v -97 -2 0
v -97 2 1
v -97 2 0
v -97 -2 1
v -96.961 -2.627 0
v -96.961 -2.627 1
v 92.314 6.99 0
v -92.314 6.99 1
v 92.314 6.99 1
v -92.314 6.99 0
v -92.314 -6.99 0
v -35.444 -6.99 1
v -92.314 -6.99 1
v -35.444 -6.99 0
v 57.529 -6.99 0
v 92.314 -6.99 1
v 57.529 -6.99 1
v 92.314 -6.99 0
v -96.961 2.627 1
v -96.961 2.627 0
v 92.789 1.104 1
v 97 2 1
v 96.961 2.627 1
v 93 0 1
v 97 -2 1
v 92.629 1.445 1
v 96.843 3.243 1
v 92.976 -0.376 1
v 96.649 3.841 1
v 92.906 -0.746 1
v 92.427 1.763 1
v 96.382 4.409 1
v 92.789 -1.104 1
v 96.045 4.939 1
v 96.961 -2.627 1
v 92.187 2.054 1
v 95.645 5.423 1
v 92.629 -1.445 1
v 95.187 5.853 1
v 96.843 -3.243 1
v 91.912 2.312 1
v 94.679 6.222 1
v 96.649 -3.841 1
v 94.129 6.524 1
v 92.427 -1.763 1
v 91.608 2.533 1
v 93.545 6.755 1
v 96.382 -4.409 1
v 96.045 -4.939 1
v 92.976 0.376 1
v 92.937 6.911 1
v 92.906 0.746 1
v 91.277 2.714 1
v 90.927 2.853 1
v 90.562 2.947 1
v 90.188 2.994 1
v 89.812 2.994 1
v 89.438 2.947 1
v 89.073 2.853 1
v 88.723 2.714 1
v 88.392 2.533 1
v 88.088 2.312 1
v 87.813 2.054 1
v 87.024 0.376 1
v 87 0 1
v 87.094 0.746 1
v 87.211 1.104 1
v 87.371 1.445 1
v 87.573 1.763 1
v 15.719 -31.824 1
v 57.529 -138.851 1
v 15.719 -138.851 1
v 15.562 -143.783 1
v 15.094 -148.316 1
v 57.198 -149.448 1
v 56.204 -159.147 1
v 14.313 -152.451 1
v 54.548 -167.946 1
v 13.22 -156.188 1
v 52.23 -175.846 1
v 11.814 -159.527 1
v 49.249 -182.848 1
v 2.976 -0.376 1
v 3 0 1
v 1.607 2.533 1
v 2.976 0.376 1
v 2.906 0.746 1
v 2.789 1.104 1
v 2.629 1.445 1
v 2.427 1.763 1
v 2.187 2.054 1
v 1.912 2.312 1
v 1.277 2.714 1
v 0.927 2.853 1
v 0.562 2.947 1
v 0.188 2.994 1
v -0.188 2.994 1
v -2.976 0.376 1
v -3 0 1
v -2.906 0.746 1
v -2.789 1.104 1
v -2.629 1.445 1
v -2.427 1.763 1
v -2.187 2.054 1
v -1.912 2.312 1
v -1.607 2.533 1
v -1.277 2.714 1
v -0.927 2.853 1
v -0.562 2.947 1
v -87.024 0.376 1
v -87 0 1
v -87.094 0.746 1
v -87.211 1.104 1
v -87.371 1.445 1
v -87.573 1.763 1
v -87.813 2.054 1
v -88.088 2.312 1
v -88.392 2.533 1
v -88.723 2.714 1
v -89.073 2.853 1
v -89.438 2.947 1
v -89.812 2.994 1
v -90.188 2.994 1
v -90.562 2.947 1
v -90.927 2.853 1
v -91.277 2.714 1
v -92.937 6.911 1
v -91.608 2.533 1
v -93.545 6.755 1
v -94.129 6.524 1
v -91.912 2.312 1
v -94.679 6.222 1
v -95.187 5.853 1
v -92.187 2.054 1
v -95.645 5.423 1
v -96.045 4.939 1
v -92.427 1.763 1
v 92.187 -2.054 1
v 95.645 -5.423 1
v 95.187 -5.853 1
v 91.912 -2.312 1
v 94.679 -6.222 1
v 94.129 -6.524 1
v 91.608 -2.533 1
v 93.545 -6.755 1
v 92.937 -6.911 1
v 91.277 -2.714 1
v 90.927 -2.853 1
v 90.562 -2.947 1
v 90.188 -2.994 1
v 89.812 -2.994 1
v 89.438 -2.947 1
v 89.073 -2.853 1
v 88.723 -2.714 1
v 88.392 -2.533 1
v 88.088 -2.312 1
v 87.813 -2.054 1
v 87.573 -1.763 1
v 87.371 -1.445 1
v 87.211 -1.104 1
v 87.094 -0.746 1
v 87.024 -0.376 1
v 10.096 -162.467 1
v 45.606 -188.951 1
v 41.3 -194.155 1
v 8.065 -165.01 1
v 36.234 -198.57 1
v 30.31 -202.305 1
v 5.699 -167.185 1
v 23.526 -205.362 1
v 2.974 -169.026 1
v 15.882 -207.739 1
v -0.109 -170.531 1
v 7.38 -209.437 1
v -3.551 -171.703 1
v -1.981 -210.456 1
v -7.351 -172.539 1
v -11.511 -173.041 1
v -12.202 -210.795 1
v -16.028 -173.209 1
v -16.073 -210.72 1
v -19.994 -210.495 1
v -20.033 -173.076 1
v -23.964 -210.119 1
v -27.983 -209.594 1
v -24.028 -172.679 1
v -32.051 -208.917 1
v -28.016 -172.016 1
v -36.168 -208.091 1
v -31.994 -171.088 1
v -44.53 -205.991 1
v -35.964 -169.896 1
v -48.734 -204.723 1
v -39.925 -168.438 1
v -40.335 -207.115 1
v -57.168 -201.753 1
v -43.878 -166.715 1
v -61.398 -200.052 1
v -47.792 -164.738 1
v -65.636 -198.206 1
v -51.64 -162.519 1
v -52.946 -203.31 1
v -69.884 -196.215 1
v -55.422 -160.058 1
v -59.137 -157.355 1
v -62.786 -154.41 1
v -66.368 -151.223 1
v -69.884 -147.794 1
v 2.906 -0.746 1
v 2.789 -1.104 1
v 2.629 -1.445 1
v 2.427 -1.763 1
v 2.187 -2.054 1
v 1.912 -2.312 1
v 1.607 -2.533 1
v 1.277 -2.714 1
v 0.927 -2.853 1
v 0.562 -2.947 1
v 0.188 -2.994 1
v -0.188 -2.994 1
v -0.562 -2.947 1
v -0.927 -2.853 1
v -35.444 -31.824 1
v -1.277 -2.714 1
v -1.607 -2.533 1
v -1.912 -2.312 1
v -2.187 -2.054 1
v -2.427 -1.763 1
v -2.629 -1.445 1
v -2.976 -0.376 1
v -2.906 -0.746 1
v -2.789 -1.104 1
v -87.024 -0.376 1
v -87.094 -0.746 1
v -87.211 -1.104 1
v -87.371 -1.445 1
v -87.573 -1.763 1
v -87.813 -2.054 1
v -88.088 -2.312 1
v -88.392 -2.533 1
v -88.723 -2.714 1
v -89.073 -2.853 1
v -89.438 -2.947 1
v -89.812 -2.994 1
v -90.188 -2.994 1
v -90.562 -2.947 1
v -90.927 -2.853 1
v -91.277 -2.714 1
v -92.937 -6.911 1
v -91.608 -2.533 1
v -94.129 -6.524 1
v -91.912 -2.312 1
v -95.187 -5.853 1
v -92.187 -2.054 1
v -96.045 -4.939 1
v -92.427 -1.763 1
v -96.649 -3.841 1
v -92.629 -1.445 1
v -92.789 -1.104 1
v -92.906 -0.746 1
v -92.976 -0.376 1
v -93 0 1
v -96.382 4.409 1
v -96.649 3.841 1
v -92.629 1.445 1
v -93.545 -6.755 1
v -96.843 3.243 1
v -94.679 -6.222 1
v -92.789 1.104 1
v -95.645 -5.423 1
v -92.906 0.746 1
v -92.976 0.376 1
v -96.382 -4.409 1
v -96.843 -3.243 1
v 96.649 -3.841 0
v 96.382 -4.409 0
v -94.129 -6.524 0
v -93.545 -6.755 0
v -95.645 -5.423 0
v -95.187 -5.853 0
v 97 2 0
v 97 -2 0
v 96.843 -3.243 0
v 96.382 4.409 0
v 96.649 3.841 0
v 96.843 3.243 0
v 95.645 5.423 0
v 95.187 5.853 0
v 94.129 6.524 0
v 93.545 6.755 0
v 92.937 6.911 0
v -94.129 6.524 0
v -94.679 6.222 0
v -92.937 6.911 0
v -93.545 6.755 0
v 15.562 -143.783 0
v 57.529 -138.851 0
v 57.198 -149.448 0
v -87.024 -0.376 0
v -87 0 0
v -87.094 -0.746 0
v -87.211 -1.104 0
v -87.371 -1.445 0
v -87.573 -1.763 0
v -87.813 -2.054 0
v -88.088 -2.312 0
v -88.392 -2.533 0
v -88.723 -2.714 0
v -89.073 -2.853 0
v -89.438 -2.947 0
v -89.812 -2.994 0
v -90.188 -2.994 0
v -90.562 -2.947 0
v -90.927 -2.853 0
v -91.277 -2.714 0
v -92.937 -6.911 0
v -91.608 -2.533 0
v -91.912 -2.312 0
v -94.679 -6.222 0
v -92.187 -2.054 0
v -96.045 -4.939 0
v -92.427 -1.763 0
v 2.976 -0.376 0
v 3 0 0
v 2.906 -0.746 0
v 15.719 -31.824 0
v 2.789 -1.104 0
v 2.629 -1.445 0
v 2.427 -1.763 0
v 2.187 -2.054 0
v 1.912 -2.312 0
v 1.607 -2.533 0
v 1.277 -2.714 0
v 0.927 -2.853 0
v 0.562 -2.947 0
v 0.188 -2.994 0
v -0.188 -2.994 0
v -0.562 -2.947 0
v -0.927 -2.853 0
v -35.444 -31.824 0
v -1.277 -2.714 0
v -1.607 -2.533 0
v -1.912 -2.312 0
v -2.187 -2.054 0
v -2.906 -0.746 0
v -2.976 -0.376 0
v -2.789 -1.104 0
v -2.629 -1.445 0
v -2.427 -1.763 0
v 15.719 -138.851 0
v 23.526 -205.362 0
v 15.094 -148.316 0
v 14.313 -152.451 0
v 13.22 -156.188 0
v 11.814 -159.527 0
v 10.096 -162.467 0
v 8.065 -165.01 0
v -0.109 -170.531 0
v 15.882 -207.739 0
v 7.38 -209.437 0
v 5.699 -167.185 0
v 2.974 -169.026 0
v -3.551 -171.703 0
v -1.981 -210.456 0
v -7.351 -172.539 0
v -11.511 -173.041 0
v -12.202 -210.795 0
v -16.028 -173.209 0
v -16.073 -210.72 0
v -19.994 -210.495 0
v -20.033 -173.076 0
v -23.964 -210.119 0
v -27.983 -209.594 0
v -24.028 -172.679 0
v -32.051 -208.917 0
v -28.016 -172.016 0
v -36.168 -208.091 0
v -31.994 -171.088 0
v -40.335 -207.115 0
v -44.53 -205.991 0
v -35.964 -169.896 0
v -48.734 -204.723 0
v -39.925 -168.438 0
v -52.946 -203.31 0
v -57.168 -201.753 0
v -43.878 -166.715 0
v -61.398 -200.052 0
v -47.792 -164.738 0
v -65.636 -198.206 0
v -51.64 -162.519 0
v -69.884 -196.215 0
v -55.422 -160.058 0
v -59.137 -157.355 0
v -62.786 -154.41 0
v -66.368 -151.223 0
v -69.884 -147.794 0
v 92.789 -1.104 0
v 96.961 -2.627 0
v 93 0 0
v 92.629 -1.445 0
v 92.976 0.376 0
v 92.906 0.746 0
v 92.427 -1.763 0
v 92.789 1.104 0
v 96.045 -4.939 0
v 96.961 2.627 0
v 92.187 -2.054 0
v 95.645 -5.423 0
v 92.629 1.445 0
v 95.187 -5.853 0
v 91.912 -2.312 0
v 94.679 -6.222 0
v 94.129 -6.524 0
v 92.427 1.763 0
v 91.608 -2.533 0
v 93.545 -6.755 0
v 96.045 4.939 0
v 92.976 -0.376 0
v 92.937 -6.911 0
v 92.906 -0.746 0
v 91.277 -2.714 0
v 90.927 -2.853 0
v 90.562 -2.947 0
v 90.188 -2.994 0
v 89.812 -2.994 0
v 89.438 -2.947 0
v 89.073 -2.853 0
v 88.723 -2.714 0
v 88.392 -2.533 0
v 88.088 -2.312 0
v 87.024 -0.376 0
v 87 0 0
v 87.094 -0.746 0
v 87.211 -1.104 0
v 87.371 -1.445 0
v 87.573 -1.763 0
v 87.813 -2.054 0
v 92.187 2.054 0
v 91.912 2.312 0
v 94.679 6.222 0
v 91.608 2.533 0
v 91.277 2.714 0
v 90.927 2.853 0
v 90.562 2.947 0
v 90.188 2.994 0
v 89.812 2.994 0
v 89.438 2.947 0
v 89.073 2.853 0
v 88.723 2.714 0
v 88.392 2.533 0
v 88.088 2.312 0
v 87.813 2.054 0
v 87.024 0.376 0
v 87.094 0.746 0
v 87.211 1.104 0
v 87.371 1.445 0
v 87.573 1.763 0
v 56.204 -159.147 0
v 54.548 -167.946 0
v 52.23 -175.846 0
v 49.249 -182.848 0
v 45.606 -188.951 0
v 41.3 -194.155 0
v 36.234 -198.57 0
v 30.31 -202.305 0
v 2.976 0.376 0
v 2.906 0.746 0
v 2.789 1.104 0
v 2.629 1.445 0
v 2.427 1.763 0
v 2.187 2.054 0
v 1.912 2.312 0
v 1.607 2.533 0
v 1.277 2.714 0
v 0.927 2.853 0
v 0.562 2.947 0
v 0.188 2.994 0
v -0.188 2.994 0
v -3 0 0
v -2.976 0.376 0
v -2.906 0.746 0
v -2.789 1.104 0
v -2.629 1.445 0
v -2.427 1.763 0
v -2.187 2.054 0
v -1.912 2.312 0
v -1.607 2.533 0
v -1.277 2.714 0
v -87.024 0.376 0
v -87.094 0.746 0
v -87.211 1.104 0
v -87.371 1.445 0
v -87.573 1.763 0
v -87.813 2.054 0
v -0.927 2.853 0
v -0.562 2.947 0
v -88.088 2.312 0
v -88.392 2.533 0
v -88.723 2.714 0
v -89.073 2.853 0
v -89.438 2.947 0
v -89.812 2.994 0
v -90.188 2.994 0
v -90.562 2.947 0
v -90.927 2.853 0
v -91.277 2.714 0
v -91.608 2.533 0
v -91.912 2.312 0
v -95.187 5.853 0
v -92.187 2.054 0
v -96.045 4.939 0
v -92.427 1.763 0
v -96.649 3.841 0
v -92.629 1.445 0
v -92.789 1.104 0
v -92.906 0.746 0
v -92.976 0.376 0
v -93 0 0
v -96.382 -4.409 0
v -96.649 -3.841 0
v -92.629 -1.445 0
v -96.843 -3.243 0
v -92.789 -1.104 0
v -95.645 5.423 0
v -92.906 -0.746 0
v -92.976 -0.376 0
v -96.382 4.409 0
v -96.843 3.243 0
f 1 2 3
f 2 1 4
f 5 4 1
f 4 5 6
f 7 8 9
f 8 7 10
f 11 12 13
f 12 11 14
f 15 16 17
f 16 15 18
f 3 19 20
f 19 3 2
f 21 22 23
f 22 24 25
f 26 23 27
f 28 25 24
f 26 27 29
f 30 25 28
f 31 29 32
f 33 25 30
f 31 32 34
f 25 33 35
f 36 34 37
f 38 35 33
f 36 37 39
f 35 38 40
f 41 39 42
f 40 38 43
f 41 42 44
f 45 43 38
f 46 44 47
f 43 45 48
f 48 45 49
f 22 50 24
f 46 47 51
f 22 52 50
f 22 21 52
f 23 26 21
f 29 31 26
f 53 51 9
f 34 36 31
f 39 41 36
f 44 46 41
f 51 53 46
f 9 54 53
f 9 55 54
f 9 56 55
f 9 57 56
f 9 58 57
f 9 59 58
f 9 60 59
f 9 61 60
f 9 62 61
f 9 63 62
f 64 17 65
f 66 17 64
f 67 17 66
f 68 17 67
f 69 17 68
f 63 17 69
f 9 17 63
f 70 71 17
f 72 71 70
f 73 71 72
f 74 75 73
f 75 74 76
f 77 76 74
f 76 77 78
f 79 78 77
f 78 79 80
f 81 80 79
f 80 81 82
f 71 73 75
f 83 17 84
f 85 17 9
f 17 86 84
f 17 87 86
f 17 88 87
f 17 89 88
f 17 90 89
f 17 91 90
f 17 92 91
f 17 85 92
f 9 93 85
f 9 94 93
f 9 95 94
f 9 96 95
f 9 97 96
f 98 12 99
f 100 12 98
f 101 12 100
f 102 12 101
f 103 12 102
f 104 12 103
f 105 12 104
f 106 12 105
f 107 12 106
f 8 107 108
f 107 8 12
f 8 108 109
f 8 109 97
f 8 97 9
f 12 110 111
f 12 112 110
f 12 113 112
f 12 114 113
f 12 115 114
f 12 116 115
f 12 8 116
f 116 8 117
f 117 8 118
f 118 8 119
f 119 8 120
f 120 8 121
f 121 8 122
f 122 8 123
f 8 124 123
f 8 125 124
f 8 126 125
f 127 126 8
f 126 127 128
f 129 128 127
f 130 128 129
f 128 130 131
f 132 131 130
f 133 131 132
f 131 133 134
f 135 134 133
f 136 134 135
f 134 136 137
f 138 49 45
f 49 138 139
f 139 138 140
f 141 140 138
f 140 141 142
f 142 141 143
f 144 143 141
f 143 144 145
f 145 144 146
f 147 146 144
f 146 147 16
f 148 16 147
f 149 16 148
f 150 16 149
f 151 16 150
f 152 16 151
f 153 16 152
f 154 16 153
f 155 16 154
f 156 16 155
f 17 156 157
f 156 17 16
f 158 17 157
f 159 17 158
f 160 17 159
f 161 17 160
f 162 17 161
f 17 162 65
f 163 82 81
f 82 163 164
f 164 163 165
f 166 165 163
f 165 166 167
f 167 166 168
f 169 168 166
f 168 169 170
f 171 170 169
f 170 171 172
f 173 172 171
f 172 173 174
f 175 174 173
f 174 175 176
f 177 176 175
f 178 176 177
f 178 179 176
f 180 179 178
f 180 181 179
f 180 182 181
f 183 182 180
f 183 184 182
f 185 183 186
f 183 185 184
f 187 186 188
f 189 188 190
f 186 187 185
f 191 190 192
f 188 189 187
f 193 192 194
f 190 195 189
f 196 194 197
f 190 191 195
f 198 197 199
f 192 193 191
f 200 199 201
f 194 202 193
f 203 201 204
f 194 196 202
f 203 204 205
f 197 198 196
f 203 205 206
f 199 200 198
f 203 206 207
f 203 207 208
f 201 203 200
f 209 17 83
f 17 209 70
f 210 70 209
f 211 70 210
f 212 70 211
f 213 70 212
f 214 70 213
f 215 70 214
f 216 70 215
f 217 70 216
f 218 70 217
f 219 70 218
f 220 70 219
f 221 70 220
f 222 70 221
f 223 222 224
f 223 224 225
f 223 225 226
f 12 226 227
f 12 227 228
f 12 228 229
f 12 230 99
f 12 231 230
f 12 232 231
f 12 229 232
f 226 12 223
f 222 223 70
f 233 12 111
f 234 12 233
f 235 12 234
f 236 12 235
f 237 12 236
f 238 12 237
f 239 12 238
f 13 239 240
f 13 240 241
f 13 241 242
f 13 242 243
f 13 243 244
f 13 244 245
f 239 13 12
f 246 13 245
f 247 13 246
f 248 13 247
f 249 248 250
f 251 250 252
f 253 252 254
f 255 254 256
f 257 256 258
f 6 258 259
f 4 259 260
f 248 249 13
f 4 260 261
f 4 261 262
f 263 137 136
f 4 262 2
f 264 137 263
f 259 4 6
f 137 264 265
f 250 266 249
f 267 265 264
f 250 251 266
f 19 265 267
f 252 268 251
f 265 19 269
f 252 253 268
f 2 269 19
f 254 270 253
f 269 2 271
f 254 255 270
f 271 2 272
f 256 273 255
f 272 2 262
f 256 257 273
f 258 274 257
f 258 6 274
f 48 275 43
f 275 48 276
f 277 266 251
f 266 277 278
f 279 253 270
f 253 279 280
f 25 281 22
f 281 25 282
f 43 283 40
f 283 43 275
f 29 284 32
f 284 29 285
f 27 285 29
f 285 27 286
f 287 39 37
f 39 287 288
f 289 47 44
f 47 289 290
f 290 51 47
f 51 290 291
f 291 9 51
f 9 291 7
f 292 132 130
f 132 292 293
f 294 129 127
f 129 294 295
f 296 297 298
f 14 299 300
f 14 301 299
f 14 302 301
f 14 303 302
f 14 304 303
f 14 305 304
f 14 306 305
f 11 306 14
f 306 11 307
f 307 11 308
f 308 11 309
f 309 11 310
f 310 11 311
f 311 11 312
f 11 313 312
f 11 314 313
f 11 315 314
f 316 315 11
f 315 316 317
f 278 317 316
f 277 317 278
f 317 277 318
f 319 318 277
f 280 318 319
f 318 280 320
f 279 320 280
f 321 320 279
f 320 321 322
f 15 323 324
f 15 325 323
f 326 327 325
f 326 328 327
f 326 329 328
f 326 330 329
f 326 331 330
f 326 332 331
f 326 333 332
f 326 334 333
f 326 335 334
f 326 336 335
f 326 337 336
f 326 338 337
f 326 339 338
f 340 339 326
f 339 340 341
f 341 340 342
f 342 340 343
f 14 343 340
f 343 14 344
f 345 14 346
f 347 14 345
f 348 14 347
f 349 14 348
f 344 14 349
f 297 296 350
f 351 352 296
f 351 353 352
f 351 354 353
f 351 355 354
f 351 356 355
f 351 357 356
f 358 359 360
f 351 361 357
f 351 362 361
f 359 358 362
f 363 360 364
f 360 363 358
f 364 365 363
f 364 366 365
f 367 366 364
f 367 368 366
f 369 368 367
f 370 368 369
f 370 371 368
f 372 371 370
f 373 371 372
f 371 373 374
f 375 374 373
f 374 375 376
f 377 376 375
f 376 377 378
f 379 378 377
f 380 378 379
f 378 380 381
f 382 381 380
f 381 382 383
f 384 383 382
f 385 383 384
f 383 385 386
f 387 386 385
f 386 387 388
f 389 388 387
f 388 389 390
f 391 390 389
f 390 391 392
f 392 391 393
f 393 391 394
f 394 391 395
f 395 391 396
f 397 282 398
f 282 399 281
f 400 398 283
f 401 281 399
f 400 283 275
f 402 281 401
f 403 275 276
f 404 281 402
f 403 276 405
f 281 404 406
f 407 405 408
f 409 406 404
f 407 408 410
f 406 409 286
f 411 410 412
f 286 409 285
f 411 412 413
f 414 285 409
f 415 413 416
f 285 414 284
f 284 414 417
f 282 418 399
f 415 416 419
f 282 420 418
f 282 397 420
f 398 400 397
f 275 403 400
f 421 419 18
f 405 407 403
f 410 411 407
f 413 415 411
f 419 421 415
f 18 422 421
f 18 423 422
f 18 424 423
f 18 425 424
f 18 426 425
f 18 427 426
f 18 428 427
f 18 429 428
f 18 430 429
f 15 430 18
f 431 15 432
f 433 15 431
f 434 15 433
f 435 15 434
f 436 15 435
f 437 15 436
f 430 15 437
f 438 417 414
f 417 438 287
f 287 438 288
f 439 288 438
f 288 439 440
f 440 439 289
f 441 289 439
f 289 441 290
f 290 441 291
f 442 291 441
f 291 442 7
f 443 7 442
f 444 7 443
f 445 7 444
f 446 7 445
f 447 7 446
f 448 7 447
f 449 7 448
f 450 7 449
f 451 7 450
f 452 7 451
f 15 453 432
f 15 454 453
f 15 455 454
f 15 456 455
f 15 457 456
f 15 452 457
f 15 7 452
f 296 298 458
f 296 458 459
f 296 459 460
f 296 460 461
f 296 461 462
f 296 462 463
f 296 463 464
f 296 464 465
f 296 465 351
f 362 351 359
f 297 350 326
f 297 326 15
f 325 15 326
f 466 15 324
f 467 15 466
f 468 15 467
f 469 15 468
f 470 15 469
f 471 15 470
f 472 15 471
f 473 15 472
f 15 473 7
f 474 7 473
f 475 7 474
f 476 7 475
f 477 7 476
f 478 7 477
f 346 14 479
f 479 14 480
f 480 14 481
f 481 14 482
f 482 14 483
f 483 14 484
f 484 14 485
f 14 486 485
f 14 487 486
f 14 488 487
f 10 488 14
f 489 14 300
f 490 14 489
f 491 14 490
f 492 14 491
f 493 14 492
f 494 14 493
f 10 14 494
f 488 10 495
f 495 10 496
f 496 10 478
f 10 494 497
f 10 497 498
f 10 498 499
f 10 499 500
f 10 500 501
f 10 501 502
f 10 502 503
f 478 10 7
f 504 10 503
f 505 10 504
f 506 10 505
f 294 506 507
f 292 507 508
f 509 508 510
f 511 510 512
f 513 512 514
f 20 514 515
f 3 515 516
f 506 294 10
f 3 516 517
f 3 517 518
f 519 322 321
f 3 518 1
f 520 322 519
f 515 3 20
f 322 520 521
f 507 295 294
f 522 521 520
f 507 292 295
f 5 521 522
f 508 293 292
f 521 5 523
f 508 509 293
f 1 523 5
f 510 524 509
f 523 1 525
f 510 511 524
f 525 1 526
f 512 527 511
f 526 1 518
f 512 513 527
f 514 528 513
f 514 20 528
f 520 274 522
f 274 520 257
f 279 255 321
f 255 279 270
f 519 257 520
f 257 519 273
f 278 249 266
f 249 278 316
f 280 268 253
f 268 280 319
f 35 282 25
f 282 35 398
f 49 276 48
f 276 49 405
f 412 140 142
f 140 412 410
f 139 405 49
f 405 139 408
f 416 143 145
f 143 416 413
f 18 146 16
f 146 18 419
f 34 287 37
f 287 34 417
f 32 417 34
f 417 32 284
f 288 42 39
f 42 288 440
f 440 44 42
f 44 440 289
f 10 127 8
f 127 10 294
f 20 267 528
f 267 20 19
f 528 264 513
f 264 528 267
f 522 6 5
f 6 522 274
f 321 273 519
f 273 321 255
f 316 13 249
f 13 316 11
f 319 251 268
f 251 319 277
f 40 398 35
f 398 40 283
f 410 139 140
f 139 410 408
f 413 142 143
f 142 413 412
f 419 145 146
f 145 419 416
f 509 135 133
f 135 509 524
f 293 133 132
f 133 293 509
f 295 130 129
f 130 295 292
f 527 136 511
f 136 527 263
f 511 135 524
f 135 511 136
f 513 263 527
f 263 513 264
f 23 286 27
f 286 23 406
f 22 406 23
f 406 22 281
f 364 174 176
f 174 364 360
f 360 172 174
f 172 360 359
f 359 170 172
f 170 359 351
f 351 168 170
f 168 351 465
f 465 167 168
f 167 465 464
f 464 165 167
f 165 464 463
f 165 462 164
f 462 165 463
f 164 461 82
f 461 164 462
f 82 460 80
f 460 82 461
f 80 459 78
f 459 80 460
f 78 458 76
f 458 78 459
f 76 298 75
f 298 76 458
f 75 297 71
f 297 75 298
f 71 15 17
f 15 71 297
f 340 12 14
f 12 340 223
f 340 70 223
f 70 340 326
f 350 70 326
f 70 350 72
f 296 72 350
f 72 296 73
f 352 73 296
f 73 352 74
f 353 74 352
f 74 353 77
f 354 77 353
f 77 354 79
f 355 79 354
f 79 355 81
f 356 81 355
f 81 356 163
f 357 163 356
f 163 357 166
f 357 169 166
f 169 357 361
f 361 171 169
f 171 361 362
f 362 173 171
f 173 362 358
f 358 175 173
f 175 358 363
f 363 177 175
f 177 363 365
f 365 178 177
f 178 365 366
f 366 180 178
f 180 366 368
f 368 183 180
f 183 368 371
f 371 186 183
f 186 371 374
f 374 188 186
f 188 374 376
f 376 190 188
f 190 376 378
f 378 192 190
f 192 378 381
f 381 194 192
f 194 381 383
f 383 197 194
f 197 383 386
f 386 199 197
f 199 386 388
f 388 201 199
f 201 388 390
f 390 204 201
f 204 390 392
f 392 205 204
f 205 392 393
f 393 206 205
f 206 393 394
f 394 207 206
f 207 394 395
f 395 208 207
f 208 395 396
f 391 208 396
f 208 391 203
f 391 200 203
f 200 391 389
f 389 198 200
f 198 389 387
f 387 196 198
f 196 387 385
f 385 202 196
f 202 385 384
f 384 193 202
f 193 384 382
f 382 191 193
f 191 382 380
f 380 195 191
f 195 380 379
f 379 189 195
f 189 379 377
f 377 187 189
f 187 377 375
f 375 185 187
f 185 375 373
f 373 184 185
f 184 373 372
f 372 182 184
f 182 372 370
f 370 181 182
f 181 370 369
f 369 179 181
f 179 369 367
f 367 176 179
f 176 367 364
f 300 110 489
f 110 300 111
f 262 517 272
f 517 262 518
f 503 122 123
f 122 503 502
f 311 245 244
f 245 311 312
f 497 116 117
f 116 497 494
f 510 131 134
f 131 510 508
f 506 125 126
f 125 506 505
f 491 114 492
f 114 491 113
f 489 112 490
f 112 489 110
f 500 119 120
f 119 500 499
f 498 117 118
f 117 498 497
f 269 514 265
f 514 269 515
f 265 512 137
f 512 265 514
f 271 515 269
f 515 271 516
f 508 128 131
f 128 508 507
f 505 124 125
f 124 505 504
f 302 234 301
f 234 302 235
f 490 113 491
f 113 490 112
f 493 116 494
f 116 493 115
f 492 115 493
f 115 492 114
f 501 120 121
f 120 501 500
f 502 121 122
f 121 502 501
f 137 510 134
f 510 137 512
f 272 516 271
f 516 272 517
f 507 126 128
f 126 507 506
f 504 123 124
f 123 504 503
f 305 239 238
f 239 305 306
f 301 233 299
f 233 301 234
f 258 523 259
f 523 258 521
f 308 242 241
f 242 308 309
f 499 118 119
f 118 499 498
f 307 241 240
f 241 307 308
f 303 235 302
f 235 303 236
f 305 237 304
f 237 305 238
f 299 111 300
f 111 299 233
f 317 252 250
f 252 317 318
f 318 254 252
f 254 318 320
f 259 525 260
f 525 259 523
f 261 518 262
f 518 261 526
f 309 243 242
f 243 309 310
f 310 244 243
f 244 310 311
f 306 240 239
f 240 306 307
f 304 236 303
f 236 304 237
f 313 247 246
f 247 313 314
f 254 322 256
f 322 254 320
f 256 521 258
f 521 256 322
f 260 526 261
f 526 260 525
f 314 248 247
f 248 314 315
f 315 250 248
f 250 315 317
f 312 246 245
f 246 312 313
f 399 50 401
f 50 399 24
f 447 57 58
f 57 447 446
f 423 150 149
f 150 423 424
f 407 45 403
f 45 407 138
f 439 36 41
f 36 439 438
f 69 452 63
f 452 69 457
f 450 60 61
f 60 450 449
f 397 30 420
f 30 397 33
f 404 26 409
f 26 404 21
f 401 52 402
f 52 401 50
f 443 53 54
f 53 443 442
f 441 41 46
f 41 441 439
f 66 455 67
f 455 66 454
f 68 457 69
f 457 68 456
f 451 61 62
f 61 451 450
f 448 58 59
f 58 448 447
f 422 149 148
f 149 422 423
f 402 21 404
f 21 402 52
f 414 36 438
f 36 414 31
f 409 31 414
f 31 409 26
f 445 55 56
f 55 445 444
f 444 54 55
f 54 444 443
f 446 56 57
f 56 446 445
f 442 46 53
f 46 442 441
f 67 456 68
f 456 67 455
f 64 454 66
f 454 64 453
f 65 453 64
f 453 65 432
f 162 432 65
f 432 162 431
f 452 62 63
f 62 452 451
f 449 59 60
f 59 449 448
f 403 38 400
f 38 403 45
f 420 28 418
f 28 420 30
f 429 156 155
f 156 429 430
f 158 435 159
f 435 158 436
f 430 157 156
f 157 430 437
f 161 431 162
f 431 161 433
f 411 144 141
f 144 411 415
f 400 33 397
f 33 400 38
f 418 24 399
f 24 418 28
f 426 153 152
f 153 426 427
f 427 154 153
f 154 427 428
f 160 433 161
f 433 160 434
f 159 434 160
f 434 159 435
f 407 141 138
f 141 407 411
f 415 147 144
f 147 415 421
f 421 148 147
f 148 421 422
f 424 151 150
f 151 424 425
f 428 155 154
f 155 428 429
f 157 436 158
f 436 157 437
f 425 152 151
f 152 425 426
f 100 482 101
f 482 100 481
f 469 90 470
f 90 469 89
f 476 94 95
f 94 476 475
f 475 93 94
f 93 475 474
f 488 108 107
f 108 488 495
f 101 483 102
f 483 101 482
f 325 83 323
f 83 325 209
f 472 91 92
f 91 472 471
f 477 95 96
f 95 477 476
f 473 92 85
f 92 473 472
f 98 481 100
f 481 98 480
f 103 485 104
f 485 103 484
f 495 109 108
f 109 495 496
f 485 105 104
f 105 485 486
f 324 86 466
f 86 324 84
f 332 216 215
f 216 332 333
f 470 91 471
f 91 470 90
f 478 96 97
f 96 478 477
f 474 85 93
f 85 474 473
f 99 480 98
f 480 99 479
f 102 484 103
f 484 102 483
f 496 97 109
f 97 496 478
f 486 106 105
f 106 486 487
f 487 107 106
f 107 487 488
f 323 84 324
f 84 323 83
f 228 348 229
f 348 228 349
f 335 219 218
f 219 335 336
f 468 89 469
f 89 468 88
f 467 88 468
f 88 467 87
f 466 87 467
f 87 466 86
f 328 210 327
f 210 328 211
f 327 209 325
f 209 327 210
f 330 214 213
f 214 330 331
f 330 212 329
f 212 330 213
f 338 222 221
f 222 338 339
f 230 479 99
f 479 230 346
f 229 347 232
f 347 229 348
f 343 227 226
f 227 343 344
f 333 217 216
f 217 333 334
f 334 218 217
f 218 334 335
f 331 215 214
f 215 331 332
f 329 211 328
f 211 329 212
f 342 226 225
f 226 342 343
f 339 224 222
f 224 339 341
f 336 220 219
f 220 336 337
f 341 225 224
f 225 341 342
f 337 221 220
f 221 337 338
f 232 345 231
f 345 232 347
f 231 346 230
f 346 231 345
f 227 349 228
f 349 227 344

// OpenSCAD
$fn = 50;


difference() {
	union() {
		translate(v = [0, 0, 0]) {
			rotate(a = [0, 0, 0]) {
				hull() {
					translate(v = [-92.0000000000, 2.0000000000, 0]) {
						rotate(a = [0, 0, 0]) {
							translate(v = [0, 0, 0]) {
								rotate(a = [0, 0, 0]) {
									cylinder(h = 1, r = 5);
								}
							}
						}
					}
					translate(v = [92.0000000000, 2.0000000000, 0]) {
						rotate(a = [0, 0, 0]) {
							translate(v = [0, 0, 0]) {
								rotate(a = [0, 0, 0]) {
									cylinder(h = 1, r = 5);
								}
							}
						}
					}
					translate(v = [-92.0000000000, -2.0000000000, 0]) {
						rotate(a = [0, 0, 0]) {
							translate(v = [0, 0, 0]) {
								rotate(a = [0, 0, 0]) {
									cylinder(h = 1, r = 5);
								}
							}
						}
					}
					translate(v = [92.0000000000, -2.0000000000, 0]) {
						rotate(a = [0, 0, 0]) {
							translate(v = [0, 0, 0]) {
								rotate(a = [0, 0, 0]) {
									cylinder(h = 1, r = 5);
								}
							}
						}
					}
				}
			}
		}
		translate(v = [0, 0, 0]) {
			rotate(a = [0, 0, 0]) {
				linear_extrude(height = 1) {
					text(font = "DejaVu Sans Mono:style=Bold", halign = "center", size = 209.0000000000, text = "J", valign = "top");
				}
			}
		}
	}
	union() {
		translate(v = [-90.0000000000, 0.0000000000, -125.0000000000]) {
			rotate(a = [0, 0, 0]) {
				cylinder(h = 250, r = 3.0000000000);
			}
		}
		translate(v = [90.0000000000, 0.0000000000, -125.0000000000]) {
			rotate(a = [0, 0, 0]) {
				cylinder(h = 250, r = 3.0000000000);
			}
		}
		translate(v = [90.0000000000, 0.0000000000, -125.0000000000]) {
			rotate(a = [0, 0, 0]) {
				cylinder(h = 250, r = 3.0000000000);
			}
		}
		translate(v = [0, 0, -125.0000000000]) {
			rotate(a = [0, 0, 0]) {
				cylinder(h = 250, r = 3.0000000000);
			}
		}
	}
}
